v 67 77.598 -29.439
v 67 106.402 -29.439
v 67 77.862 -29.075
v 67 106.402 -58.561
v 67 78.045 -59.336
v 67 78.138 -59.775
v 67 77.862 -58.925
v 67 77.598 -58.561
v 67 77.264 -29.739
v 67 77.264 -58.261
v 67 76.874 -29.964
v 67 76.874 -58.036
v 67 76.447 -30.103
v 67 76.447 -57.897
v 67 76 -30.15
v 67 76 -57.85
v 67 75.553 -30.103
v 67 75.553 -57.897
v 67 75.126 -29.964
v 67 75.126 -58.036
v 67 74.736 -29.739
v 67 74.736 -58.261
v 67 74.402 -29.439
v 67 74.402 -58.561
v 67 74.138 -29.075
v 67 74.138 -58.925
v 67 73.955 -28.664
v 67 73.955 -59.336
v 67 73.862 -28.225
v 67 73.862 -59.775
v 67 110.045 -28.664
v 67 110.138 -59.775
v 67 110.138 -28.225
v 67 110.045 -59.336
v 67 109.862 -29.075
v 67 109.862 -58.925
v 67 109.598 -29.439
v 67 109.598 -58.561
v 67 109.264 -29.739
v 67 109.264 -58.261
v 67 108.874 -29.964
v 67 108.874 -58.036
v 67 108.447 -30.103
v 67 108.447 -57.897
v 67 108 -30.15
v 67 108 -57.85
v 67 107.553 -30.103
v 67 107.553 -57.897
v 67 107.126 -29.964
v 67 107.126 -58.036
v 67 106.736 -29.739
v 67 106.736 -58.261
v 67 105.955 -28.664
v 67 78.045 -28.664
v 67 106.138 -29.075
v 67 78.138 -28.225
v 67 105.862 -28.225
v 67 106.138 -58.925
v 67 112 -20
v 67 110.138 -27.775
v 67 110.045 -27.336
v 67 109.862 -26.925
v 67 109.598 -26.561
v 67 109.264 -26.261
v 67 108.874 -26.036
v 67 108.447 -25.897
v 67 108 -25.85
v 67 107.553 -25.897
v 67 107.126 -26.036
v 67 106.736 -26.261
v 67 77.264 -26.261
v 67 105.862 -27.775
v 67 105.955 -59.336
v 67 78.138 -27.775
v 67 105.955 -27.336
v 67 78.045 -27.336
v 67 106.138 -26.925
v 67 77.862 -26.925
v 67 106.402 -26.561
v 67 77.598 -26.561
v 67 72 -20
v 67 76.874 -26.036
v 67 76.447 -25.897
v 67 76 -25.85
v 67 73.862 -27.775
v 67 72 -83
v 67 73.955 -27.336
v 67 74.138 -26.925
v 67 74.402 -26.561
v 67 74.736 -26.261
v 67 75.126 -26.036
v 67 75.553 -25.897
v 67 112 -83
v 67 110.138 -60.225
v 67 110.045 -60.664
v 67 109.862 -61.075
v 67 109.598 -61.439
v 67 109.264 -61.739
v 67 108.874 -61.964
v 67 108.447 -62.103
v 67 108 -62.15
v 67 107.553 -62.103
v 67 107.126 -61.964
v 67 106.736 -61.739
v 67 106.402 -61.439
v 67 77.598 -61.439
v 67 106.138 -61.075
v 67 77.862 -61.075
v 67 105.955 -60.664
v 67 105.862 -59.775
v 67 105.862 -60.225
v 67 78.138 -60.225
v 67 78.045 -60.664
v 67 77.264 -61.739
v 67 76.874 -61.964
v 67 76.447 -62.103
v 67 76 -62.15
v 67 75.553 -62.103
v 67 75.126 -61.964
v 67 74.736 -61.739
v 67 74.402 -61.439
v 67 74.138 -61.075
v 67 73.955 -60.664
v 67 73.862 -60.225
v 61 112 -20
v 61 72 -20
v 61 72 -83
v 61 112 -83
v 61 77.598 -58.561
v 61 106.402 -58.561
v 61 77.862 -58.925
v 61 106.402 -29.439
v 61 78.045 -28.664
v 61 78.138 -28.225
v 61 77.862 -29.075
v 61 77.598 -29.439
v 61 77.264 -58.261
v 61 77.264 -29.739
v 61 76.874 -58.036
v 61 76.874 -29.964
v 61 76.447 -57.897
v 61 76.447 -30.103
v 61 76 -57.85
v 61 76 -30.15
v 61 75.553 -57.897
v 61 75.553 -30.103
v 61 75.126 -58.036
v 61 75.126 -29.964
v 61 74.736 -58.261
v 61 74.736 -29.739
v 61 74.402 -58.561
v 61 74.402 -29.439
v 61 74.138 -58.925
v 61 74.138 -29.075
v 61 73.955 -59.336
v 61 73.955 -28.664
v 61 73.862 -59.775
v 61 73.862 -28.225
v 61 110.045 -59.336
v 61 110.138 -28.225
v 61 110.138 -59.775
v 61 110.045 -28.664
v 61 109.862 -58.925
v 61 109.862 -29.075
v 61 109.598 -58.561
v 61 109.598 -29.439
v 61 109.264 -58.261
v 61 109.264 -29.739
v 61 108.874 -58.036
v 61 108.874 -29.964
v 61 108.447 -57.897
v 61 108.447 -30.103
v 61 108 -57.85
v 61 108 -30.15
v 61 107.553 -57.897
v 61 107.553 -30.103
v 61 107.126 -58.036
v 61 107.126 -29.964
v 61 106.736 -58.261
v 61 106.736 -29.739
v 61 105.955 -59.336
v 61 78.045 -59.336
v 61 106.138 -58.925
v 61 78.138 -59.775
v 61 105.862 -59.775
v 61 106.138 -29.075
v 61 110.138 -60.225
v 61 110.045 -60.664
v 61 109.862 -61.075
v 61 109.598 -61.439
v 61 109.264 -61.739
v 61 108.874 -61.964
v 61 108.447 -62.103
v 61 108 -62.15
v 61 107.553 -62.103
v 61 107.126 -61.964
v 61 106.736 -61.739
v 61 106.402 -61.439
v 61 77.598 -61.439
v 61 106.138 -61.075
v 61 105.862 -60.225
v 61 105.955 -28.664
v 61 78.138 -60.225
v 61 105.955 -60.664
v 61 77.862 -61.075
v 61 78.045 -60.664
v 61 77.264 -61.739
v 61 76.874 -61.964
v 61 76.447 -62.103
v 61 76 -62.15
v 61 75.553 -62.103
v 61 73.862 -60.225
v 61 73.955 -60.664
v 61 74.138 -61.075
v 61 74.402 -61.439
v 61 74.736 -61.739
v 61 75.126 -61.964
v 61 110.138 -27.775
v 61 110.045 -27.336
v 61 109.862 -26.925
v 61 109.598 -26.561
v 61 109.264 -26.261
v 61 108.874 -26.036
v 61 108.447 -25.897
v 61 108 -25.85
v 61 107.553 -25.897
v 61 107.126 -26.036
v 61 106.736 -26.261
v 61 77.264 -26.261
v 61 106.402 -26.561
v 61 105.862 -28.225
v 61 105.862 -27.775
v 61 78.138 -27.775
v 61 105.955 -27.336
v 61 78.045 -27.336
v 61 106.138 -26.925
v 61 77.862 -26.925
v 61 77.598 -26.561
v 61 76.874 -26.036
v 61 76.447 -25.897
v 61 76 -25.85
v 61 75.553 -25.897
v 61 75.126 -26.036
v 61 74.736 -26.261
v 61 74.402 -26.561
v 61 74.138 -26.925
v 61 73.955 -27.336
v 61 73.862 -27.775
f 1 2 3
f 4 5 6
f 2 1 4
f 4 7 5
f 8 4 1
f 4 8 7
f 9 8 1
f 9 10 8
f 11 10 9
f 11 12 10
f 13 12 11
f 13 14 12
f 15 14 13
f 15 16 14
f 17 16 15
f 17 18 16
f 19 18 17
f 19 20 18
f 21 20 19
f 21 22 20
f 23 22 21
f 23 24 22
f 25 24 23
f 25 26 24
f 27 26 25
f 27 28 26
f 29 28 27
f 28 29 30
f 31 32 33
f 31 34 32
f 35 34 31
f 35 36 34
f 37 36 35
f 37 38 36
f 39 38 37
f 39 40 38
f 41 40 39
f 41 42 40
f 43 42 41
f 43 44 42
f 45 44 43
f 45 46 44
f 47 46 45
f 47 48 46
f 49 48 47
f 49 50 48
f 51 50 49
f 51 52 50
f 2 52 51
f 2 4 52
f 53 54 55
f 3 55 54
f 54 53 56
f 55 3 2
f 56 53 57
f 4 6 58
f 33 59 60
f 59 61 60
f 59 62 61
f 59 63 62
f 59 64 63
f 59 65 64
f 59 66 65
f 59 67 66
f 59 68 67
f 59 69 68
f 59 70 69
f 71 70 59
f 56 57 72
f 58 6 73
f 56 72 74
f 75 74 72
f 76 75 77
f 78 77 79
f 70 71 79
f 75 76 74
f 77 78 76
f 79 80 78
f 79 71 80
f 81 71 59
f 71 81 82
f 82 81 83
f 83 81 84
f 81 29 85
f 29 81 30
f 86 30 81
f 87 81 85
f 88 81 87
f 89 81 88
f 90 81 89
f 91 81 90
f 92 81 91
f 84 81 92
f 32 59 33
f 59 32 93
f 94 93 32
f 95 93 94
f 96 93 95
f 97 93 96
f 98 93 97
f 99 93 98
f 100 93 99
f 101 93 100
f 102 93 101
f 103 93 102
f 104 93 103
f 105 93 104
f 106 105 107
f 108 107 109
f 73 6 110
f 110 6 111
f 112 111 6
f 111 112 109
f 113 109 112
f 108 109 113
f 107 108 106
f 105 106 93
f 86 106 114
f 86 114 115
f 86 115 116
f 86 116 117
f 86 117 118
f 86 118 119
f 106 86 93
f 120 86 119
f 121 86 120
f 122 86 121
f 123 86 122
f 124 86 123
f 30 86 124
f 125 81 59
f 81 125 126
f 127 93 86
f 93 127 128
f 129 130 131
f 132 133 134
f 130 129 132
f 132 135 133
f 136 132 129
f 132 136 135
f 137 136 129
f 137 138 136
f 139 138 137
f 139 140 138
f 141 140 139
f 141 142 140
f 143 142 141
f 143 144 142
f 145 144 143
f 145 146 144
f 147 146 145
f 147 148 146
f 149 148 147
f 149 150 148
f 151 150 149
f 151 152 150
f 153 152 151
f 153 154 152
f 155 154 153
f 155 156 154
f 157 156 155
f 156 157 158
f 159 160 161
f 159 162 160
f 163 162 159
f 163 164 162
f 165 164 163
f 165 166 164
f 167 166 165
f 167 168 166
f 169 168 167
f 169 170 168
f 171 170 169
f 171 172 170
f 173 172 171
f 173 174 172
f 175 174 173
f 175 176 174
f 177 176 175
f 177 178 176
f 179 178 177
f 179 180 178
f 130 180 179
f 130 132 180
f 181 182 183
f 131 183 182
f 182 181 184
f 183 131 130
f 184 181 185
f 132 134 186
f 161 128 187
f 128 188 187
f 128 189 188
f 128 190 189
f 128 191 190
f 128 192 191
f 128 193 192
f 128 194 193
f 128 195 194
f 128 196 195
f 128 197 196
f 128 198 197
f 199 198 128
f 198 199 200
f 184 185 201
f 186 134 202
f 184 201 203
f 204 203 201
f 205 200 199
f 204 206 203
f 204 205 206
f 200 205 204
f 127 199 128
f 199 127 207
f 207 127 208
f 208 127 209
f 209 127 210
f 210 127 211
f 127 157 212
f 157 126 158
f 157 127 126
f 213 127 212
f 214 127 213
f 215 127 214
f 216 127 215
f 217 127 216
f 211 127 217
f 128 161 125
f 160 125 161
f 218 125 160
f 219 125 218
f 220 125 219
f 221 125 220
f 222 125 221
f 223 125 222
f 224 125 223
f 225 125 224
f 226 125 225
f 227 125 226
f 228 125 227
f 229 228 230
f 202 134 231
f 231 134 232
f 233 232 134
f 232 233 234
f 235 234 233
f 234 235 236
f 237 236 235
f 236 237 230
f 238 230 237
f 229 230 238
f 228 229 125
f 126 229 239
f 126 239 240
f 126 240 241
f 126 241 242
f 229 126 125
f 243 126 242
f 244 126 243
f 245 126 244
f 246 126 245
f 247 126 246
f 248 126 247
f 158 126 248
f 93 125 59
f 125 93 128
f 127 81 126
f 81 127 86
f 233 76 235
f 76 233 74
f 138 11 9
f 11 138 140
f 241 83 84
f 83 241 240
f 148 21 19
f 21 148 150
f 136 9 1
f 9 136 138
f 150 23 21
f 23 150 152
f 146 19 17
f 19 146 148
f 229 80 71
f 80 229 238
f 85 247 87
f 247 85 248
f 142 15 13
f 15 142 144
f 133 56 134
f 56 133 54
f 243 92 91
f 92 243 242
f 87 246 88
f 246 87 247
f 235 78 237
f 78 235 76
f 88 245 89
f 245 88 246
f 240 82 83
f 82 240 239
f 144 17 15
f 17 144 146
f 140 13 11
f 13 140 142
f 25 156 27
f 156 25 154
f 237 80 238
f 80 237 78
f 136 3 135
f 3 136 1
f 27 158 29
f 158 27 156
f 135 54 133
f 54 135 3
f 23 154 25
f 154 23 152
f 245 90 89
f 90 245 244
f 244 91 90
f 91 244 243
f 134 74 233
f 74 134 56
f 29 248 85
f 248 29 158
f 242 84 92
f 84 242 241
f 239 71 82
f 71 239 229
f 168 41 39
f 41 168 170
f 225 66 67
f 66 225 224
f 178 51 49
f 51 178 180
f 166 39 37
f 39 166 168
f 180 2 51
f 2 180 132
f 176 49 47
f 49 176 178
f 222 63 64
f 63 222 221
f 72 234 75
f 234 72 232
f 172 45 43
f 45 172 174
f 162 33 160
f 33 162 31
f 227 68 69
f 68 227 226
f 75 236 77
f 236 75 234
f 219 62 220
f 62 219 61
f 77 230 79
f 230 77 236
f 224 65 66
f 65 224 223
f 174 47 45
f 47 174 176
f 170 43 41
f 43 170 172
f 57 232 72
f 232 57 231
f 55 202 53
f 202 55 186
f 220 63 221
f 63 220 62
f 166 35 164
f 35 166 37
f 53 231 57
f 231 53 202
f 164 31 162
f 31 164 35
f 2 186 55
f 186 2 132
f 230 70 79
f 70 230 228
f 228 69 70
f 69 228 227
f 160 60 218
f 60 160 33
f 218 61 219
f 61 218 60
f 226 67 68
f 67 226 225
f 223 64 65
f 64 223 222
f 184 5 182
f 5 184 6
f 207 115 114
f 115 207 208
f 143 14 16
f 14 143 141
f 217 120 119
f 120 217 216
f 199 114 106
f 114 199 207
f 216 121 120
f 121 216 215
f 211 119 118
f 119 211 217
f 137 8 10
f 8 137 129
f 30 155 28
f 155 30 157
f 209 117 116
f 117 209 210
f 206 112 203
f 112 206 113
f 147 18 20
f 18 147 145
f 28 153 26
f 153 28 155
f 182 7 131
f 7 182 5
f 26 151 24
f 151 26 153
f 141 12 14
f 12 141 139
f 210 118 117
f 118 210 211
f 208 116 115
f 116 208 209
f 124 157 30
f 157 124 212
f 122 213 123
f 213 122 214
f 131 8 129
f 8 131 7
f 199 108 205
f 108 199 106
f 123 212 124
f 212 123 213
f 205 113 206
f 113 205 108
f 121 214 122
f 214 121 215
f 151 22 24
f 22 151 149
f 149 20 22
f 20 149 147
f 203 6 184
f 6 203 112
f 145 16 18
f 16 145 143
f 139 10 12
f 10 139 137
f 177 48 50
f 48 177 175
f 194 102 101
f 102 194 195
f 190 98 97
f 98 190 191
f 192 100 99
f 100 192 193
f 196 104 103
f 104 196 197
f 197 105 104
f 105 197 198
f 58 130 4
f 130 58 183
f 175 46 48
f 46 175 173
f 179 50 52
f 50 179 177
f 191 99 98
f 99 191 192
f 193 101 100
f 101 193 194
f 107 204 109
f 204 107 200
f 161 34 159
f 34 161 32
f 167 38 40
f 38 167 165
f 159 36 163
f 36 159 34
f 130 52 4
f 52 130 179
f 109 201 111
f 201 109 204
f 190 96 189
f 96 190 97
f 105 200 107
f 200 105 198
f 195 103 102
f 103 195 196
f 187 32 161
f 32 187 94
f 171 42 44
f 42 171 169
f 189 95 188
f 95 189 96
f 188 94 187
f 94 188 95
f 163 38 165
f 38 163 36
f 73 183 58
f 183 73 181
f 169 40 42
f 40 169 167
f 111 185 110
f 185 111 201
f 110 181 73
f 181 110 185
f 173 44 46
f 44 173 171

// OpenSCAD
// front plate of chimney guard rail for left entry
color ("tan")
difference() {
union () {
    // front plate
    translate([61,72,-83])
    cube([6,40,63]);
}
    // top holes left and right
    translate([-4,76,-28])
    rotate([0,90,0])
    cylinder(r=2.15,90, $fn=30);

    translate([-4,108,-28])
    rotate([0,90,0])
    cylinder(r=2.15,90, $fn=30);

    // bottom holes left and right
    translate([-4,76,-60])
    rotate([0,90,0])
    cylinder(r=2.15,90, $fn=30);

    translate([-4,108,-60])
    rotate([0,90,0])
    cylinder(r=2.15,90, $fn=30);
}
